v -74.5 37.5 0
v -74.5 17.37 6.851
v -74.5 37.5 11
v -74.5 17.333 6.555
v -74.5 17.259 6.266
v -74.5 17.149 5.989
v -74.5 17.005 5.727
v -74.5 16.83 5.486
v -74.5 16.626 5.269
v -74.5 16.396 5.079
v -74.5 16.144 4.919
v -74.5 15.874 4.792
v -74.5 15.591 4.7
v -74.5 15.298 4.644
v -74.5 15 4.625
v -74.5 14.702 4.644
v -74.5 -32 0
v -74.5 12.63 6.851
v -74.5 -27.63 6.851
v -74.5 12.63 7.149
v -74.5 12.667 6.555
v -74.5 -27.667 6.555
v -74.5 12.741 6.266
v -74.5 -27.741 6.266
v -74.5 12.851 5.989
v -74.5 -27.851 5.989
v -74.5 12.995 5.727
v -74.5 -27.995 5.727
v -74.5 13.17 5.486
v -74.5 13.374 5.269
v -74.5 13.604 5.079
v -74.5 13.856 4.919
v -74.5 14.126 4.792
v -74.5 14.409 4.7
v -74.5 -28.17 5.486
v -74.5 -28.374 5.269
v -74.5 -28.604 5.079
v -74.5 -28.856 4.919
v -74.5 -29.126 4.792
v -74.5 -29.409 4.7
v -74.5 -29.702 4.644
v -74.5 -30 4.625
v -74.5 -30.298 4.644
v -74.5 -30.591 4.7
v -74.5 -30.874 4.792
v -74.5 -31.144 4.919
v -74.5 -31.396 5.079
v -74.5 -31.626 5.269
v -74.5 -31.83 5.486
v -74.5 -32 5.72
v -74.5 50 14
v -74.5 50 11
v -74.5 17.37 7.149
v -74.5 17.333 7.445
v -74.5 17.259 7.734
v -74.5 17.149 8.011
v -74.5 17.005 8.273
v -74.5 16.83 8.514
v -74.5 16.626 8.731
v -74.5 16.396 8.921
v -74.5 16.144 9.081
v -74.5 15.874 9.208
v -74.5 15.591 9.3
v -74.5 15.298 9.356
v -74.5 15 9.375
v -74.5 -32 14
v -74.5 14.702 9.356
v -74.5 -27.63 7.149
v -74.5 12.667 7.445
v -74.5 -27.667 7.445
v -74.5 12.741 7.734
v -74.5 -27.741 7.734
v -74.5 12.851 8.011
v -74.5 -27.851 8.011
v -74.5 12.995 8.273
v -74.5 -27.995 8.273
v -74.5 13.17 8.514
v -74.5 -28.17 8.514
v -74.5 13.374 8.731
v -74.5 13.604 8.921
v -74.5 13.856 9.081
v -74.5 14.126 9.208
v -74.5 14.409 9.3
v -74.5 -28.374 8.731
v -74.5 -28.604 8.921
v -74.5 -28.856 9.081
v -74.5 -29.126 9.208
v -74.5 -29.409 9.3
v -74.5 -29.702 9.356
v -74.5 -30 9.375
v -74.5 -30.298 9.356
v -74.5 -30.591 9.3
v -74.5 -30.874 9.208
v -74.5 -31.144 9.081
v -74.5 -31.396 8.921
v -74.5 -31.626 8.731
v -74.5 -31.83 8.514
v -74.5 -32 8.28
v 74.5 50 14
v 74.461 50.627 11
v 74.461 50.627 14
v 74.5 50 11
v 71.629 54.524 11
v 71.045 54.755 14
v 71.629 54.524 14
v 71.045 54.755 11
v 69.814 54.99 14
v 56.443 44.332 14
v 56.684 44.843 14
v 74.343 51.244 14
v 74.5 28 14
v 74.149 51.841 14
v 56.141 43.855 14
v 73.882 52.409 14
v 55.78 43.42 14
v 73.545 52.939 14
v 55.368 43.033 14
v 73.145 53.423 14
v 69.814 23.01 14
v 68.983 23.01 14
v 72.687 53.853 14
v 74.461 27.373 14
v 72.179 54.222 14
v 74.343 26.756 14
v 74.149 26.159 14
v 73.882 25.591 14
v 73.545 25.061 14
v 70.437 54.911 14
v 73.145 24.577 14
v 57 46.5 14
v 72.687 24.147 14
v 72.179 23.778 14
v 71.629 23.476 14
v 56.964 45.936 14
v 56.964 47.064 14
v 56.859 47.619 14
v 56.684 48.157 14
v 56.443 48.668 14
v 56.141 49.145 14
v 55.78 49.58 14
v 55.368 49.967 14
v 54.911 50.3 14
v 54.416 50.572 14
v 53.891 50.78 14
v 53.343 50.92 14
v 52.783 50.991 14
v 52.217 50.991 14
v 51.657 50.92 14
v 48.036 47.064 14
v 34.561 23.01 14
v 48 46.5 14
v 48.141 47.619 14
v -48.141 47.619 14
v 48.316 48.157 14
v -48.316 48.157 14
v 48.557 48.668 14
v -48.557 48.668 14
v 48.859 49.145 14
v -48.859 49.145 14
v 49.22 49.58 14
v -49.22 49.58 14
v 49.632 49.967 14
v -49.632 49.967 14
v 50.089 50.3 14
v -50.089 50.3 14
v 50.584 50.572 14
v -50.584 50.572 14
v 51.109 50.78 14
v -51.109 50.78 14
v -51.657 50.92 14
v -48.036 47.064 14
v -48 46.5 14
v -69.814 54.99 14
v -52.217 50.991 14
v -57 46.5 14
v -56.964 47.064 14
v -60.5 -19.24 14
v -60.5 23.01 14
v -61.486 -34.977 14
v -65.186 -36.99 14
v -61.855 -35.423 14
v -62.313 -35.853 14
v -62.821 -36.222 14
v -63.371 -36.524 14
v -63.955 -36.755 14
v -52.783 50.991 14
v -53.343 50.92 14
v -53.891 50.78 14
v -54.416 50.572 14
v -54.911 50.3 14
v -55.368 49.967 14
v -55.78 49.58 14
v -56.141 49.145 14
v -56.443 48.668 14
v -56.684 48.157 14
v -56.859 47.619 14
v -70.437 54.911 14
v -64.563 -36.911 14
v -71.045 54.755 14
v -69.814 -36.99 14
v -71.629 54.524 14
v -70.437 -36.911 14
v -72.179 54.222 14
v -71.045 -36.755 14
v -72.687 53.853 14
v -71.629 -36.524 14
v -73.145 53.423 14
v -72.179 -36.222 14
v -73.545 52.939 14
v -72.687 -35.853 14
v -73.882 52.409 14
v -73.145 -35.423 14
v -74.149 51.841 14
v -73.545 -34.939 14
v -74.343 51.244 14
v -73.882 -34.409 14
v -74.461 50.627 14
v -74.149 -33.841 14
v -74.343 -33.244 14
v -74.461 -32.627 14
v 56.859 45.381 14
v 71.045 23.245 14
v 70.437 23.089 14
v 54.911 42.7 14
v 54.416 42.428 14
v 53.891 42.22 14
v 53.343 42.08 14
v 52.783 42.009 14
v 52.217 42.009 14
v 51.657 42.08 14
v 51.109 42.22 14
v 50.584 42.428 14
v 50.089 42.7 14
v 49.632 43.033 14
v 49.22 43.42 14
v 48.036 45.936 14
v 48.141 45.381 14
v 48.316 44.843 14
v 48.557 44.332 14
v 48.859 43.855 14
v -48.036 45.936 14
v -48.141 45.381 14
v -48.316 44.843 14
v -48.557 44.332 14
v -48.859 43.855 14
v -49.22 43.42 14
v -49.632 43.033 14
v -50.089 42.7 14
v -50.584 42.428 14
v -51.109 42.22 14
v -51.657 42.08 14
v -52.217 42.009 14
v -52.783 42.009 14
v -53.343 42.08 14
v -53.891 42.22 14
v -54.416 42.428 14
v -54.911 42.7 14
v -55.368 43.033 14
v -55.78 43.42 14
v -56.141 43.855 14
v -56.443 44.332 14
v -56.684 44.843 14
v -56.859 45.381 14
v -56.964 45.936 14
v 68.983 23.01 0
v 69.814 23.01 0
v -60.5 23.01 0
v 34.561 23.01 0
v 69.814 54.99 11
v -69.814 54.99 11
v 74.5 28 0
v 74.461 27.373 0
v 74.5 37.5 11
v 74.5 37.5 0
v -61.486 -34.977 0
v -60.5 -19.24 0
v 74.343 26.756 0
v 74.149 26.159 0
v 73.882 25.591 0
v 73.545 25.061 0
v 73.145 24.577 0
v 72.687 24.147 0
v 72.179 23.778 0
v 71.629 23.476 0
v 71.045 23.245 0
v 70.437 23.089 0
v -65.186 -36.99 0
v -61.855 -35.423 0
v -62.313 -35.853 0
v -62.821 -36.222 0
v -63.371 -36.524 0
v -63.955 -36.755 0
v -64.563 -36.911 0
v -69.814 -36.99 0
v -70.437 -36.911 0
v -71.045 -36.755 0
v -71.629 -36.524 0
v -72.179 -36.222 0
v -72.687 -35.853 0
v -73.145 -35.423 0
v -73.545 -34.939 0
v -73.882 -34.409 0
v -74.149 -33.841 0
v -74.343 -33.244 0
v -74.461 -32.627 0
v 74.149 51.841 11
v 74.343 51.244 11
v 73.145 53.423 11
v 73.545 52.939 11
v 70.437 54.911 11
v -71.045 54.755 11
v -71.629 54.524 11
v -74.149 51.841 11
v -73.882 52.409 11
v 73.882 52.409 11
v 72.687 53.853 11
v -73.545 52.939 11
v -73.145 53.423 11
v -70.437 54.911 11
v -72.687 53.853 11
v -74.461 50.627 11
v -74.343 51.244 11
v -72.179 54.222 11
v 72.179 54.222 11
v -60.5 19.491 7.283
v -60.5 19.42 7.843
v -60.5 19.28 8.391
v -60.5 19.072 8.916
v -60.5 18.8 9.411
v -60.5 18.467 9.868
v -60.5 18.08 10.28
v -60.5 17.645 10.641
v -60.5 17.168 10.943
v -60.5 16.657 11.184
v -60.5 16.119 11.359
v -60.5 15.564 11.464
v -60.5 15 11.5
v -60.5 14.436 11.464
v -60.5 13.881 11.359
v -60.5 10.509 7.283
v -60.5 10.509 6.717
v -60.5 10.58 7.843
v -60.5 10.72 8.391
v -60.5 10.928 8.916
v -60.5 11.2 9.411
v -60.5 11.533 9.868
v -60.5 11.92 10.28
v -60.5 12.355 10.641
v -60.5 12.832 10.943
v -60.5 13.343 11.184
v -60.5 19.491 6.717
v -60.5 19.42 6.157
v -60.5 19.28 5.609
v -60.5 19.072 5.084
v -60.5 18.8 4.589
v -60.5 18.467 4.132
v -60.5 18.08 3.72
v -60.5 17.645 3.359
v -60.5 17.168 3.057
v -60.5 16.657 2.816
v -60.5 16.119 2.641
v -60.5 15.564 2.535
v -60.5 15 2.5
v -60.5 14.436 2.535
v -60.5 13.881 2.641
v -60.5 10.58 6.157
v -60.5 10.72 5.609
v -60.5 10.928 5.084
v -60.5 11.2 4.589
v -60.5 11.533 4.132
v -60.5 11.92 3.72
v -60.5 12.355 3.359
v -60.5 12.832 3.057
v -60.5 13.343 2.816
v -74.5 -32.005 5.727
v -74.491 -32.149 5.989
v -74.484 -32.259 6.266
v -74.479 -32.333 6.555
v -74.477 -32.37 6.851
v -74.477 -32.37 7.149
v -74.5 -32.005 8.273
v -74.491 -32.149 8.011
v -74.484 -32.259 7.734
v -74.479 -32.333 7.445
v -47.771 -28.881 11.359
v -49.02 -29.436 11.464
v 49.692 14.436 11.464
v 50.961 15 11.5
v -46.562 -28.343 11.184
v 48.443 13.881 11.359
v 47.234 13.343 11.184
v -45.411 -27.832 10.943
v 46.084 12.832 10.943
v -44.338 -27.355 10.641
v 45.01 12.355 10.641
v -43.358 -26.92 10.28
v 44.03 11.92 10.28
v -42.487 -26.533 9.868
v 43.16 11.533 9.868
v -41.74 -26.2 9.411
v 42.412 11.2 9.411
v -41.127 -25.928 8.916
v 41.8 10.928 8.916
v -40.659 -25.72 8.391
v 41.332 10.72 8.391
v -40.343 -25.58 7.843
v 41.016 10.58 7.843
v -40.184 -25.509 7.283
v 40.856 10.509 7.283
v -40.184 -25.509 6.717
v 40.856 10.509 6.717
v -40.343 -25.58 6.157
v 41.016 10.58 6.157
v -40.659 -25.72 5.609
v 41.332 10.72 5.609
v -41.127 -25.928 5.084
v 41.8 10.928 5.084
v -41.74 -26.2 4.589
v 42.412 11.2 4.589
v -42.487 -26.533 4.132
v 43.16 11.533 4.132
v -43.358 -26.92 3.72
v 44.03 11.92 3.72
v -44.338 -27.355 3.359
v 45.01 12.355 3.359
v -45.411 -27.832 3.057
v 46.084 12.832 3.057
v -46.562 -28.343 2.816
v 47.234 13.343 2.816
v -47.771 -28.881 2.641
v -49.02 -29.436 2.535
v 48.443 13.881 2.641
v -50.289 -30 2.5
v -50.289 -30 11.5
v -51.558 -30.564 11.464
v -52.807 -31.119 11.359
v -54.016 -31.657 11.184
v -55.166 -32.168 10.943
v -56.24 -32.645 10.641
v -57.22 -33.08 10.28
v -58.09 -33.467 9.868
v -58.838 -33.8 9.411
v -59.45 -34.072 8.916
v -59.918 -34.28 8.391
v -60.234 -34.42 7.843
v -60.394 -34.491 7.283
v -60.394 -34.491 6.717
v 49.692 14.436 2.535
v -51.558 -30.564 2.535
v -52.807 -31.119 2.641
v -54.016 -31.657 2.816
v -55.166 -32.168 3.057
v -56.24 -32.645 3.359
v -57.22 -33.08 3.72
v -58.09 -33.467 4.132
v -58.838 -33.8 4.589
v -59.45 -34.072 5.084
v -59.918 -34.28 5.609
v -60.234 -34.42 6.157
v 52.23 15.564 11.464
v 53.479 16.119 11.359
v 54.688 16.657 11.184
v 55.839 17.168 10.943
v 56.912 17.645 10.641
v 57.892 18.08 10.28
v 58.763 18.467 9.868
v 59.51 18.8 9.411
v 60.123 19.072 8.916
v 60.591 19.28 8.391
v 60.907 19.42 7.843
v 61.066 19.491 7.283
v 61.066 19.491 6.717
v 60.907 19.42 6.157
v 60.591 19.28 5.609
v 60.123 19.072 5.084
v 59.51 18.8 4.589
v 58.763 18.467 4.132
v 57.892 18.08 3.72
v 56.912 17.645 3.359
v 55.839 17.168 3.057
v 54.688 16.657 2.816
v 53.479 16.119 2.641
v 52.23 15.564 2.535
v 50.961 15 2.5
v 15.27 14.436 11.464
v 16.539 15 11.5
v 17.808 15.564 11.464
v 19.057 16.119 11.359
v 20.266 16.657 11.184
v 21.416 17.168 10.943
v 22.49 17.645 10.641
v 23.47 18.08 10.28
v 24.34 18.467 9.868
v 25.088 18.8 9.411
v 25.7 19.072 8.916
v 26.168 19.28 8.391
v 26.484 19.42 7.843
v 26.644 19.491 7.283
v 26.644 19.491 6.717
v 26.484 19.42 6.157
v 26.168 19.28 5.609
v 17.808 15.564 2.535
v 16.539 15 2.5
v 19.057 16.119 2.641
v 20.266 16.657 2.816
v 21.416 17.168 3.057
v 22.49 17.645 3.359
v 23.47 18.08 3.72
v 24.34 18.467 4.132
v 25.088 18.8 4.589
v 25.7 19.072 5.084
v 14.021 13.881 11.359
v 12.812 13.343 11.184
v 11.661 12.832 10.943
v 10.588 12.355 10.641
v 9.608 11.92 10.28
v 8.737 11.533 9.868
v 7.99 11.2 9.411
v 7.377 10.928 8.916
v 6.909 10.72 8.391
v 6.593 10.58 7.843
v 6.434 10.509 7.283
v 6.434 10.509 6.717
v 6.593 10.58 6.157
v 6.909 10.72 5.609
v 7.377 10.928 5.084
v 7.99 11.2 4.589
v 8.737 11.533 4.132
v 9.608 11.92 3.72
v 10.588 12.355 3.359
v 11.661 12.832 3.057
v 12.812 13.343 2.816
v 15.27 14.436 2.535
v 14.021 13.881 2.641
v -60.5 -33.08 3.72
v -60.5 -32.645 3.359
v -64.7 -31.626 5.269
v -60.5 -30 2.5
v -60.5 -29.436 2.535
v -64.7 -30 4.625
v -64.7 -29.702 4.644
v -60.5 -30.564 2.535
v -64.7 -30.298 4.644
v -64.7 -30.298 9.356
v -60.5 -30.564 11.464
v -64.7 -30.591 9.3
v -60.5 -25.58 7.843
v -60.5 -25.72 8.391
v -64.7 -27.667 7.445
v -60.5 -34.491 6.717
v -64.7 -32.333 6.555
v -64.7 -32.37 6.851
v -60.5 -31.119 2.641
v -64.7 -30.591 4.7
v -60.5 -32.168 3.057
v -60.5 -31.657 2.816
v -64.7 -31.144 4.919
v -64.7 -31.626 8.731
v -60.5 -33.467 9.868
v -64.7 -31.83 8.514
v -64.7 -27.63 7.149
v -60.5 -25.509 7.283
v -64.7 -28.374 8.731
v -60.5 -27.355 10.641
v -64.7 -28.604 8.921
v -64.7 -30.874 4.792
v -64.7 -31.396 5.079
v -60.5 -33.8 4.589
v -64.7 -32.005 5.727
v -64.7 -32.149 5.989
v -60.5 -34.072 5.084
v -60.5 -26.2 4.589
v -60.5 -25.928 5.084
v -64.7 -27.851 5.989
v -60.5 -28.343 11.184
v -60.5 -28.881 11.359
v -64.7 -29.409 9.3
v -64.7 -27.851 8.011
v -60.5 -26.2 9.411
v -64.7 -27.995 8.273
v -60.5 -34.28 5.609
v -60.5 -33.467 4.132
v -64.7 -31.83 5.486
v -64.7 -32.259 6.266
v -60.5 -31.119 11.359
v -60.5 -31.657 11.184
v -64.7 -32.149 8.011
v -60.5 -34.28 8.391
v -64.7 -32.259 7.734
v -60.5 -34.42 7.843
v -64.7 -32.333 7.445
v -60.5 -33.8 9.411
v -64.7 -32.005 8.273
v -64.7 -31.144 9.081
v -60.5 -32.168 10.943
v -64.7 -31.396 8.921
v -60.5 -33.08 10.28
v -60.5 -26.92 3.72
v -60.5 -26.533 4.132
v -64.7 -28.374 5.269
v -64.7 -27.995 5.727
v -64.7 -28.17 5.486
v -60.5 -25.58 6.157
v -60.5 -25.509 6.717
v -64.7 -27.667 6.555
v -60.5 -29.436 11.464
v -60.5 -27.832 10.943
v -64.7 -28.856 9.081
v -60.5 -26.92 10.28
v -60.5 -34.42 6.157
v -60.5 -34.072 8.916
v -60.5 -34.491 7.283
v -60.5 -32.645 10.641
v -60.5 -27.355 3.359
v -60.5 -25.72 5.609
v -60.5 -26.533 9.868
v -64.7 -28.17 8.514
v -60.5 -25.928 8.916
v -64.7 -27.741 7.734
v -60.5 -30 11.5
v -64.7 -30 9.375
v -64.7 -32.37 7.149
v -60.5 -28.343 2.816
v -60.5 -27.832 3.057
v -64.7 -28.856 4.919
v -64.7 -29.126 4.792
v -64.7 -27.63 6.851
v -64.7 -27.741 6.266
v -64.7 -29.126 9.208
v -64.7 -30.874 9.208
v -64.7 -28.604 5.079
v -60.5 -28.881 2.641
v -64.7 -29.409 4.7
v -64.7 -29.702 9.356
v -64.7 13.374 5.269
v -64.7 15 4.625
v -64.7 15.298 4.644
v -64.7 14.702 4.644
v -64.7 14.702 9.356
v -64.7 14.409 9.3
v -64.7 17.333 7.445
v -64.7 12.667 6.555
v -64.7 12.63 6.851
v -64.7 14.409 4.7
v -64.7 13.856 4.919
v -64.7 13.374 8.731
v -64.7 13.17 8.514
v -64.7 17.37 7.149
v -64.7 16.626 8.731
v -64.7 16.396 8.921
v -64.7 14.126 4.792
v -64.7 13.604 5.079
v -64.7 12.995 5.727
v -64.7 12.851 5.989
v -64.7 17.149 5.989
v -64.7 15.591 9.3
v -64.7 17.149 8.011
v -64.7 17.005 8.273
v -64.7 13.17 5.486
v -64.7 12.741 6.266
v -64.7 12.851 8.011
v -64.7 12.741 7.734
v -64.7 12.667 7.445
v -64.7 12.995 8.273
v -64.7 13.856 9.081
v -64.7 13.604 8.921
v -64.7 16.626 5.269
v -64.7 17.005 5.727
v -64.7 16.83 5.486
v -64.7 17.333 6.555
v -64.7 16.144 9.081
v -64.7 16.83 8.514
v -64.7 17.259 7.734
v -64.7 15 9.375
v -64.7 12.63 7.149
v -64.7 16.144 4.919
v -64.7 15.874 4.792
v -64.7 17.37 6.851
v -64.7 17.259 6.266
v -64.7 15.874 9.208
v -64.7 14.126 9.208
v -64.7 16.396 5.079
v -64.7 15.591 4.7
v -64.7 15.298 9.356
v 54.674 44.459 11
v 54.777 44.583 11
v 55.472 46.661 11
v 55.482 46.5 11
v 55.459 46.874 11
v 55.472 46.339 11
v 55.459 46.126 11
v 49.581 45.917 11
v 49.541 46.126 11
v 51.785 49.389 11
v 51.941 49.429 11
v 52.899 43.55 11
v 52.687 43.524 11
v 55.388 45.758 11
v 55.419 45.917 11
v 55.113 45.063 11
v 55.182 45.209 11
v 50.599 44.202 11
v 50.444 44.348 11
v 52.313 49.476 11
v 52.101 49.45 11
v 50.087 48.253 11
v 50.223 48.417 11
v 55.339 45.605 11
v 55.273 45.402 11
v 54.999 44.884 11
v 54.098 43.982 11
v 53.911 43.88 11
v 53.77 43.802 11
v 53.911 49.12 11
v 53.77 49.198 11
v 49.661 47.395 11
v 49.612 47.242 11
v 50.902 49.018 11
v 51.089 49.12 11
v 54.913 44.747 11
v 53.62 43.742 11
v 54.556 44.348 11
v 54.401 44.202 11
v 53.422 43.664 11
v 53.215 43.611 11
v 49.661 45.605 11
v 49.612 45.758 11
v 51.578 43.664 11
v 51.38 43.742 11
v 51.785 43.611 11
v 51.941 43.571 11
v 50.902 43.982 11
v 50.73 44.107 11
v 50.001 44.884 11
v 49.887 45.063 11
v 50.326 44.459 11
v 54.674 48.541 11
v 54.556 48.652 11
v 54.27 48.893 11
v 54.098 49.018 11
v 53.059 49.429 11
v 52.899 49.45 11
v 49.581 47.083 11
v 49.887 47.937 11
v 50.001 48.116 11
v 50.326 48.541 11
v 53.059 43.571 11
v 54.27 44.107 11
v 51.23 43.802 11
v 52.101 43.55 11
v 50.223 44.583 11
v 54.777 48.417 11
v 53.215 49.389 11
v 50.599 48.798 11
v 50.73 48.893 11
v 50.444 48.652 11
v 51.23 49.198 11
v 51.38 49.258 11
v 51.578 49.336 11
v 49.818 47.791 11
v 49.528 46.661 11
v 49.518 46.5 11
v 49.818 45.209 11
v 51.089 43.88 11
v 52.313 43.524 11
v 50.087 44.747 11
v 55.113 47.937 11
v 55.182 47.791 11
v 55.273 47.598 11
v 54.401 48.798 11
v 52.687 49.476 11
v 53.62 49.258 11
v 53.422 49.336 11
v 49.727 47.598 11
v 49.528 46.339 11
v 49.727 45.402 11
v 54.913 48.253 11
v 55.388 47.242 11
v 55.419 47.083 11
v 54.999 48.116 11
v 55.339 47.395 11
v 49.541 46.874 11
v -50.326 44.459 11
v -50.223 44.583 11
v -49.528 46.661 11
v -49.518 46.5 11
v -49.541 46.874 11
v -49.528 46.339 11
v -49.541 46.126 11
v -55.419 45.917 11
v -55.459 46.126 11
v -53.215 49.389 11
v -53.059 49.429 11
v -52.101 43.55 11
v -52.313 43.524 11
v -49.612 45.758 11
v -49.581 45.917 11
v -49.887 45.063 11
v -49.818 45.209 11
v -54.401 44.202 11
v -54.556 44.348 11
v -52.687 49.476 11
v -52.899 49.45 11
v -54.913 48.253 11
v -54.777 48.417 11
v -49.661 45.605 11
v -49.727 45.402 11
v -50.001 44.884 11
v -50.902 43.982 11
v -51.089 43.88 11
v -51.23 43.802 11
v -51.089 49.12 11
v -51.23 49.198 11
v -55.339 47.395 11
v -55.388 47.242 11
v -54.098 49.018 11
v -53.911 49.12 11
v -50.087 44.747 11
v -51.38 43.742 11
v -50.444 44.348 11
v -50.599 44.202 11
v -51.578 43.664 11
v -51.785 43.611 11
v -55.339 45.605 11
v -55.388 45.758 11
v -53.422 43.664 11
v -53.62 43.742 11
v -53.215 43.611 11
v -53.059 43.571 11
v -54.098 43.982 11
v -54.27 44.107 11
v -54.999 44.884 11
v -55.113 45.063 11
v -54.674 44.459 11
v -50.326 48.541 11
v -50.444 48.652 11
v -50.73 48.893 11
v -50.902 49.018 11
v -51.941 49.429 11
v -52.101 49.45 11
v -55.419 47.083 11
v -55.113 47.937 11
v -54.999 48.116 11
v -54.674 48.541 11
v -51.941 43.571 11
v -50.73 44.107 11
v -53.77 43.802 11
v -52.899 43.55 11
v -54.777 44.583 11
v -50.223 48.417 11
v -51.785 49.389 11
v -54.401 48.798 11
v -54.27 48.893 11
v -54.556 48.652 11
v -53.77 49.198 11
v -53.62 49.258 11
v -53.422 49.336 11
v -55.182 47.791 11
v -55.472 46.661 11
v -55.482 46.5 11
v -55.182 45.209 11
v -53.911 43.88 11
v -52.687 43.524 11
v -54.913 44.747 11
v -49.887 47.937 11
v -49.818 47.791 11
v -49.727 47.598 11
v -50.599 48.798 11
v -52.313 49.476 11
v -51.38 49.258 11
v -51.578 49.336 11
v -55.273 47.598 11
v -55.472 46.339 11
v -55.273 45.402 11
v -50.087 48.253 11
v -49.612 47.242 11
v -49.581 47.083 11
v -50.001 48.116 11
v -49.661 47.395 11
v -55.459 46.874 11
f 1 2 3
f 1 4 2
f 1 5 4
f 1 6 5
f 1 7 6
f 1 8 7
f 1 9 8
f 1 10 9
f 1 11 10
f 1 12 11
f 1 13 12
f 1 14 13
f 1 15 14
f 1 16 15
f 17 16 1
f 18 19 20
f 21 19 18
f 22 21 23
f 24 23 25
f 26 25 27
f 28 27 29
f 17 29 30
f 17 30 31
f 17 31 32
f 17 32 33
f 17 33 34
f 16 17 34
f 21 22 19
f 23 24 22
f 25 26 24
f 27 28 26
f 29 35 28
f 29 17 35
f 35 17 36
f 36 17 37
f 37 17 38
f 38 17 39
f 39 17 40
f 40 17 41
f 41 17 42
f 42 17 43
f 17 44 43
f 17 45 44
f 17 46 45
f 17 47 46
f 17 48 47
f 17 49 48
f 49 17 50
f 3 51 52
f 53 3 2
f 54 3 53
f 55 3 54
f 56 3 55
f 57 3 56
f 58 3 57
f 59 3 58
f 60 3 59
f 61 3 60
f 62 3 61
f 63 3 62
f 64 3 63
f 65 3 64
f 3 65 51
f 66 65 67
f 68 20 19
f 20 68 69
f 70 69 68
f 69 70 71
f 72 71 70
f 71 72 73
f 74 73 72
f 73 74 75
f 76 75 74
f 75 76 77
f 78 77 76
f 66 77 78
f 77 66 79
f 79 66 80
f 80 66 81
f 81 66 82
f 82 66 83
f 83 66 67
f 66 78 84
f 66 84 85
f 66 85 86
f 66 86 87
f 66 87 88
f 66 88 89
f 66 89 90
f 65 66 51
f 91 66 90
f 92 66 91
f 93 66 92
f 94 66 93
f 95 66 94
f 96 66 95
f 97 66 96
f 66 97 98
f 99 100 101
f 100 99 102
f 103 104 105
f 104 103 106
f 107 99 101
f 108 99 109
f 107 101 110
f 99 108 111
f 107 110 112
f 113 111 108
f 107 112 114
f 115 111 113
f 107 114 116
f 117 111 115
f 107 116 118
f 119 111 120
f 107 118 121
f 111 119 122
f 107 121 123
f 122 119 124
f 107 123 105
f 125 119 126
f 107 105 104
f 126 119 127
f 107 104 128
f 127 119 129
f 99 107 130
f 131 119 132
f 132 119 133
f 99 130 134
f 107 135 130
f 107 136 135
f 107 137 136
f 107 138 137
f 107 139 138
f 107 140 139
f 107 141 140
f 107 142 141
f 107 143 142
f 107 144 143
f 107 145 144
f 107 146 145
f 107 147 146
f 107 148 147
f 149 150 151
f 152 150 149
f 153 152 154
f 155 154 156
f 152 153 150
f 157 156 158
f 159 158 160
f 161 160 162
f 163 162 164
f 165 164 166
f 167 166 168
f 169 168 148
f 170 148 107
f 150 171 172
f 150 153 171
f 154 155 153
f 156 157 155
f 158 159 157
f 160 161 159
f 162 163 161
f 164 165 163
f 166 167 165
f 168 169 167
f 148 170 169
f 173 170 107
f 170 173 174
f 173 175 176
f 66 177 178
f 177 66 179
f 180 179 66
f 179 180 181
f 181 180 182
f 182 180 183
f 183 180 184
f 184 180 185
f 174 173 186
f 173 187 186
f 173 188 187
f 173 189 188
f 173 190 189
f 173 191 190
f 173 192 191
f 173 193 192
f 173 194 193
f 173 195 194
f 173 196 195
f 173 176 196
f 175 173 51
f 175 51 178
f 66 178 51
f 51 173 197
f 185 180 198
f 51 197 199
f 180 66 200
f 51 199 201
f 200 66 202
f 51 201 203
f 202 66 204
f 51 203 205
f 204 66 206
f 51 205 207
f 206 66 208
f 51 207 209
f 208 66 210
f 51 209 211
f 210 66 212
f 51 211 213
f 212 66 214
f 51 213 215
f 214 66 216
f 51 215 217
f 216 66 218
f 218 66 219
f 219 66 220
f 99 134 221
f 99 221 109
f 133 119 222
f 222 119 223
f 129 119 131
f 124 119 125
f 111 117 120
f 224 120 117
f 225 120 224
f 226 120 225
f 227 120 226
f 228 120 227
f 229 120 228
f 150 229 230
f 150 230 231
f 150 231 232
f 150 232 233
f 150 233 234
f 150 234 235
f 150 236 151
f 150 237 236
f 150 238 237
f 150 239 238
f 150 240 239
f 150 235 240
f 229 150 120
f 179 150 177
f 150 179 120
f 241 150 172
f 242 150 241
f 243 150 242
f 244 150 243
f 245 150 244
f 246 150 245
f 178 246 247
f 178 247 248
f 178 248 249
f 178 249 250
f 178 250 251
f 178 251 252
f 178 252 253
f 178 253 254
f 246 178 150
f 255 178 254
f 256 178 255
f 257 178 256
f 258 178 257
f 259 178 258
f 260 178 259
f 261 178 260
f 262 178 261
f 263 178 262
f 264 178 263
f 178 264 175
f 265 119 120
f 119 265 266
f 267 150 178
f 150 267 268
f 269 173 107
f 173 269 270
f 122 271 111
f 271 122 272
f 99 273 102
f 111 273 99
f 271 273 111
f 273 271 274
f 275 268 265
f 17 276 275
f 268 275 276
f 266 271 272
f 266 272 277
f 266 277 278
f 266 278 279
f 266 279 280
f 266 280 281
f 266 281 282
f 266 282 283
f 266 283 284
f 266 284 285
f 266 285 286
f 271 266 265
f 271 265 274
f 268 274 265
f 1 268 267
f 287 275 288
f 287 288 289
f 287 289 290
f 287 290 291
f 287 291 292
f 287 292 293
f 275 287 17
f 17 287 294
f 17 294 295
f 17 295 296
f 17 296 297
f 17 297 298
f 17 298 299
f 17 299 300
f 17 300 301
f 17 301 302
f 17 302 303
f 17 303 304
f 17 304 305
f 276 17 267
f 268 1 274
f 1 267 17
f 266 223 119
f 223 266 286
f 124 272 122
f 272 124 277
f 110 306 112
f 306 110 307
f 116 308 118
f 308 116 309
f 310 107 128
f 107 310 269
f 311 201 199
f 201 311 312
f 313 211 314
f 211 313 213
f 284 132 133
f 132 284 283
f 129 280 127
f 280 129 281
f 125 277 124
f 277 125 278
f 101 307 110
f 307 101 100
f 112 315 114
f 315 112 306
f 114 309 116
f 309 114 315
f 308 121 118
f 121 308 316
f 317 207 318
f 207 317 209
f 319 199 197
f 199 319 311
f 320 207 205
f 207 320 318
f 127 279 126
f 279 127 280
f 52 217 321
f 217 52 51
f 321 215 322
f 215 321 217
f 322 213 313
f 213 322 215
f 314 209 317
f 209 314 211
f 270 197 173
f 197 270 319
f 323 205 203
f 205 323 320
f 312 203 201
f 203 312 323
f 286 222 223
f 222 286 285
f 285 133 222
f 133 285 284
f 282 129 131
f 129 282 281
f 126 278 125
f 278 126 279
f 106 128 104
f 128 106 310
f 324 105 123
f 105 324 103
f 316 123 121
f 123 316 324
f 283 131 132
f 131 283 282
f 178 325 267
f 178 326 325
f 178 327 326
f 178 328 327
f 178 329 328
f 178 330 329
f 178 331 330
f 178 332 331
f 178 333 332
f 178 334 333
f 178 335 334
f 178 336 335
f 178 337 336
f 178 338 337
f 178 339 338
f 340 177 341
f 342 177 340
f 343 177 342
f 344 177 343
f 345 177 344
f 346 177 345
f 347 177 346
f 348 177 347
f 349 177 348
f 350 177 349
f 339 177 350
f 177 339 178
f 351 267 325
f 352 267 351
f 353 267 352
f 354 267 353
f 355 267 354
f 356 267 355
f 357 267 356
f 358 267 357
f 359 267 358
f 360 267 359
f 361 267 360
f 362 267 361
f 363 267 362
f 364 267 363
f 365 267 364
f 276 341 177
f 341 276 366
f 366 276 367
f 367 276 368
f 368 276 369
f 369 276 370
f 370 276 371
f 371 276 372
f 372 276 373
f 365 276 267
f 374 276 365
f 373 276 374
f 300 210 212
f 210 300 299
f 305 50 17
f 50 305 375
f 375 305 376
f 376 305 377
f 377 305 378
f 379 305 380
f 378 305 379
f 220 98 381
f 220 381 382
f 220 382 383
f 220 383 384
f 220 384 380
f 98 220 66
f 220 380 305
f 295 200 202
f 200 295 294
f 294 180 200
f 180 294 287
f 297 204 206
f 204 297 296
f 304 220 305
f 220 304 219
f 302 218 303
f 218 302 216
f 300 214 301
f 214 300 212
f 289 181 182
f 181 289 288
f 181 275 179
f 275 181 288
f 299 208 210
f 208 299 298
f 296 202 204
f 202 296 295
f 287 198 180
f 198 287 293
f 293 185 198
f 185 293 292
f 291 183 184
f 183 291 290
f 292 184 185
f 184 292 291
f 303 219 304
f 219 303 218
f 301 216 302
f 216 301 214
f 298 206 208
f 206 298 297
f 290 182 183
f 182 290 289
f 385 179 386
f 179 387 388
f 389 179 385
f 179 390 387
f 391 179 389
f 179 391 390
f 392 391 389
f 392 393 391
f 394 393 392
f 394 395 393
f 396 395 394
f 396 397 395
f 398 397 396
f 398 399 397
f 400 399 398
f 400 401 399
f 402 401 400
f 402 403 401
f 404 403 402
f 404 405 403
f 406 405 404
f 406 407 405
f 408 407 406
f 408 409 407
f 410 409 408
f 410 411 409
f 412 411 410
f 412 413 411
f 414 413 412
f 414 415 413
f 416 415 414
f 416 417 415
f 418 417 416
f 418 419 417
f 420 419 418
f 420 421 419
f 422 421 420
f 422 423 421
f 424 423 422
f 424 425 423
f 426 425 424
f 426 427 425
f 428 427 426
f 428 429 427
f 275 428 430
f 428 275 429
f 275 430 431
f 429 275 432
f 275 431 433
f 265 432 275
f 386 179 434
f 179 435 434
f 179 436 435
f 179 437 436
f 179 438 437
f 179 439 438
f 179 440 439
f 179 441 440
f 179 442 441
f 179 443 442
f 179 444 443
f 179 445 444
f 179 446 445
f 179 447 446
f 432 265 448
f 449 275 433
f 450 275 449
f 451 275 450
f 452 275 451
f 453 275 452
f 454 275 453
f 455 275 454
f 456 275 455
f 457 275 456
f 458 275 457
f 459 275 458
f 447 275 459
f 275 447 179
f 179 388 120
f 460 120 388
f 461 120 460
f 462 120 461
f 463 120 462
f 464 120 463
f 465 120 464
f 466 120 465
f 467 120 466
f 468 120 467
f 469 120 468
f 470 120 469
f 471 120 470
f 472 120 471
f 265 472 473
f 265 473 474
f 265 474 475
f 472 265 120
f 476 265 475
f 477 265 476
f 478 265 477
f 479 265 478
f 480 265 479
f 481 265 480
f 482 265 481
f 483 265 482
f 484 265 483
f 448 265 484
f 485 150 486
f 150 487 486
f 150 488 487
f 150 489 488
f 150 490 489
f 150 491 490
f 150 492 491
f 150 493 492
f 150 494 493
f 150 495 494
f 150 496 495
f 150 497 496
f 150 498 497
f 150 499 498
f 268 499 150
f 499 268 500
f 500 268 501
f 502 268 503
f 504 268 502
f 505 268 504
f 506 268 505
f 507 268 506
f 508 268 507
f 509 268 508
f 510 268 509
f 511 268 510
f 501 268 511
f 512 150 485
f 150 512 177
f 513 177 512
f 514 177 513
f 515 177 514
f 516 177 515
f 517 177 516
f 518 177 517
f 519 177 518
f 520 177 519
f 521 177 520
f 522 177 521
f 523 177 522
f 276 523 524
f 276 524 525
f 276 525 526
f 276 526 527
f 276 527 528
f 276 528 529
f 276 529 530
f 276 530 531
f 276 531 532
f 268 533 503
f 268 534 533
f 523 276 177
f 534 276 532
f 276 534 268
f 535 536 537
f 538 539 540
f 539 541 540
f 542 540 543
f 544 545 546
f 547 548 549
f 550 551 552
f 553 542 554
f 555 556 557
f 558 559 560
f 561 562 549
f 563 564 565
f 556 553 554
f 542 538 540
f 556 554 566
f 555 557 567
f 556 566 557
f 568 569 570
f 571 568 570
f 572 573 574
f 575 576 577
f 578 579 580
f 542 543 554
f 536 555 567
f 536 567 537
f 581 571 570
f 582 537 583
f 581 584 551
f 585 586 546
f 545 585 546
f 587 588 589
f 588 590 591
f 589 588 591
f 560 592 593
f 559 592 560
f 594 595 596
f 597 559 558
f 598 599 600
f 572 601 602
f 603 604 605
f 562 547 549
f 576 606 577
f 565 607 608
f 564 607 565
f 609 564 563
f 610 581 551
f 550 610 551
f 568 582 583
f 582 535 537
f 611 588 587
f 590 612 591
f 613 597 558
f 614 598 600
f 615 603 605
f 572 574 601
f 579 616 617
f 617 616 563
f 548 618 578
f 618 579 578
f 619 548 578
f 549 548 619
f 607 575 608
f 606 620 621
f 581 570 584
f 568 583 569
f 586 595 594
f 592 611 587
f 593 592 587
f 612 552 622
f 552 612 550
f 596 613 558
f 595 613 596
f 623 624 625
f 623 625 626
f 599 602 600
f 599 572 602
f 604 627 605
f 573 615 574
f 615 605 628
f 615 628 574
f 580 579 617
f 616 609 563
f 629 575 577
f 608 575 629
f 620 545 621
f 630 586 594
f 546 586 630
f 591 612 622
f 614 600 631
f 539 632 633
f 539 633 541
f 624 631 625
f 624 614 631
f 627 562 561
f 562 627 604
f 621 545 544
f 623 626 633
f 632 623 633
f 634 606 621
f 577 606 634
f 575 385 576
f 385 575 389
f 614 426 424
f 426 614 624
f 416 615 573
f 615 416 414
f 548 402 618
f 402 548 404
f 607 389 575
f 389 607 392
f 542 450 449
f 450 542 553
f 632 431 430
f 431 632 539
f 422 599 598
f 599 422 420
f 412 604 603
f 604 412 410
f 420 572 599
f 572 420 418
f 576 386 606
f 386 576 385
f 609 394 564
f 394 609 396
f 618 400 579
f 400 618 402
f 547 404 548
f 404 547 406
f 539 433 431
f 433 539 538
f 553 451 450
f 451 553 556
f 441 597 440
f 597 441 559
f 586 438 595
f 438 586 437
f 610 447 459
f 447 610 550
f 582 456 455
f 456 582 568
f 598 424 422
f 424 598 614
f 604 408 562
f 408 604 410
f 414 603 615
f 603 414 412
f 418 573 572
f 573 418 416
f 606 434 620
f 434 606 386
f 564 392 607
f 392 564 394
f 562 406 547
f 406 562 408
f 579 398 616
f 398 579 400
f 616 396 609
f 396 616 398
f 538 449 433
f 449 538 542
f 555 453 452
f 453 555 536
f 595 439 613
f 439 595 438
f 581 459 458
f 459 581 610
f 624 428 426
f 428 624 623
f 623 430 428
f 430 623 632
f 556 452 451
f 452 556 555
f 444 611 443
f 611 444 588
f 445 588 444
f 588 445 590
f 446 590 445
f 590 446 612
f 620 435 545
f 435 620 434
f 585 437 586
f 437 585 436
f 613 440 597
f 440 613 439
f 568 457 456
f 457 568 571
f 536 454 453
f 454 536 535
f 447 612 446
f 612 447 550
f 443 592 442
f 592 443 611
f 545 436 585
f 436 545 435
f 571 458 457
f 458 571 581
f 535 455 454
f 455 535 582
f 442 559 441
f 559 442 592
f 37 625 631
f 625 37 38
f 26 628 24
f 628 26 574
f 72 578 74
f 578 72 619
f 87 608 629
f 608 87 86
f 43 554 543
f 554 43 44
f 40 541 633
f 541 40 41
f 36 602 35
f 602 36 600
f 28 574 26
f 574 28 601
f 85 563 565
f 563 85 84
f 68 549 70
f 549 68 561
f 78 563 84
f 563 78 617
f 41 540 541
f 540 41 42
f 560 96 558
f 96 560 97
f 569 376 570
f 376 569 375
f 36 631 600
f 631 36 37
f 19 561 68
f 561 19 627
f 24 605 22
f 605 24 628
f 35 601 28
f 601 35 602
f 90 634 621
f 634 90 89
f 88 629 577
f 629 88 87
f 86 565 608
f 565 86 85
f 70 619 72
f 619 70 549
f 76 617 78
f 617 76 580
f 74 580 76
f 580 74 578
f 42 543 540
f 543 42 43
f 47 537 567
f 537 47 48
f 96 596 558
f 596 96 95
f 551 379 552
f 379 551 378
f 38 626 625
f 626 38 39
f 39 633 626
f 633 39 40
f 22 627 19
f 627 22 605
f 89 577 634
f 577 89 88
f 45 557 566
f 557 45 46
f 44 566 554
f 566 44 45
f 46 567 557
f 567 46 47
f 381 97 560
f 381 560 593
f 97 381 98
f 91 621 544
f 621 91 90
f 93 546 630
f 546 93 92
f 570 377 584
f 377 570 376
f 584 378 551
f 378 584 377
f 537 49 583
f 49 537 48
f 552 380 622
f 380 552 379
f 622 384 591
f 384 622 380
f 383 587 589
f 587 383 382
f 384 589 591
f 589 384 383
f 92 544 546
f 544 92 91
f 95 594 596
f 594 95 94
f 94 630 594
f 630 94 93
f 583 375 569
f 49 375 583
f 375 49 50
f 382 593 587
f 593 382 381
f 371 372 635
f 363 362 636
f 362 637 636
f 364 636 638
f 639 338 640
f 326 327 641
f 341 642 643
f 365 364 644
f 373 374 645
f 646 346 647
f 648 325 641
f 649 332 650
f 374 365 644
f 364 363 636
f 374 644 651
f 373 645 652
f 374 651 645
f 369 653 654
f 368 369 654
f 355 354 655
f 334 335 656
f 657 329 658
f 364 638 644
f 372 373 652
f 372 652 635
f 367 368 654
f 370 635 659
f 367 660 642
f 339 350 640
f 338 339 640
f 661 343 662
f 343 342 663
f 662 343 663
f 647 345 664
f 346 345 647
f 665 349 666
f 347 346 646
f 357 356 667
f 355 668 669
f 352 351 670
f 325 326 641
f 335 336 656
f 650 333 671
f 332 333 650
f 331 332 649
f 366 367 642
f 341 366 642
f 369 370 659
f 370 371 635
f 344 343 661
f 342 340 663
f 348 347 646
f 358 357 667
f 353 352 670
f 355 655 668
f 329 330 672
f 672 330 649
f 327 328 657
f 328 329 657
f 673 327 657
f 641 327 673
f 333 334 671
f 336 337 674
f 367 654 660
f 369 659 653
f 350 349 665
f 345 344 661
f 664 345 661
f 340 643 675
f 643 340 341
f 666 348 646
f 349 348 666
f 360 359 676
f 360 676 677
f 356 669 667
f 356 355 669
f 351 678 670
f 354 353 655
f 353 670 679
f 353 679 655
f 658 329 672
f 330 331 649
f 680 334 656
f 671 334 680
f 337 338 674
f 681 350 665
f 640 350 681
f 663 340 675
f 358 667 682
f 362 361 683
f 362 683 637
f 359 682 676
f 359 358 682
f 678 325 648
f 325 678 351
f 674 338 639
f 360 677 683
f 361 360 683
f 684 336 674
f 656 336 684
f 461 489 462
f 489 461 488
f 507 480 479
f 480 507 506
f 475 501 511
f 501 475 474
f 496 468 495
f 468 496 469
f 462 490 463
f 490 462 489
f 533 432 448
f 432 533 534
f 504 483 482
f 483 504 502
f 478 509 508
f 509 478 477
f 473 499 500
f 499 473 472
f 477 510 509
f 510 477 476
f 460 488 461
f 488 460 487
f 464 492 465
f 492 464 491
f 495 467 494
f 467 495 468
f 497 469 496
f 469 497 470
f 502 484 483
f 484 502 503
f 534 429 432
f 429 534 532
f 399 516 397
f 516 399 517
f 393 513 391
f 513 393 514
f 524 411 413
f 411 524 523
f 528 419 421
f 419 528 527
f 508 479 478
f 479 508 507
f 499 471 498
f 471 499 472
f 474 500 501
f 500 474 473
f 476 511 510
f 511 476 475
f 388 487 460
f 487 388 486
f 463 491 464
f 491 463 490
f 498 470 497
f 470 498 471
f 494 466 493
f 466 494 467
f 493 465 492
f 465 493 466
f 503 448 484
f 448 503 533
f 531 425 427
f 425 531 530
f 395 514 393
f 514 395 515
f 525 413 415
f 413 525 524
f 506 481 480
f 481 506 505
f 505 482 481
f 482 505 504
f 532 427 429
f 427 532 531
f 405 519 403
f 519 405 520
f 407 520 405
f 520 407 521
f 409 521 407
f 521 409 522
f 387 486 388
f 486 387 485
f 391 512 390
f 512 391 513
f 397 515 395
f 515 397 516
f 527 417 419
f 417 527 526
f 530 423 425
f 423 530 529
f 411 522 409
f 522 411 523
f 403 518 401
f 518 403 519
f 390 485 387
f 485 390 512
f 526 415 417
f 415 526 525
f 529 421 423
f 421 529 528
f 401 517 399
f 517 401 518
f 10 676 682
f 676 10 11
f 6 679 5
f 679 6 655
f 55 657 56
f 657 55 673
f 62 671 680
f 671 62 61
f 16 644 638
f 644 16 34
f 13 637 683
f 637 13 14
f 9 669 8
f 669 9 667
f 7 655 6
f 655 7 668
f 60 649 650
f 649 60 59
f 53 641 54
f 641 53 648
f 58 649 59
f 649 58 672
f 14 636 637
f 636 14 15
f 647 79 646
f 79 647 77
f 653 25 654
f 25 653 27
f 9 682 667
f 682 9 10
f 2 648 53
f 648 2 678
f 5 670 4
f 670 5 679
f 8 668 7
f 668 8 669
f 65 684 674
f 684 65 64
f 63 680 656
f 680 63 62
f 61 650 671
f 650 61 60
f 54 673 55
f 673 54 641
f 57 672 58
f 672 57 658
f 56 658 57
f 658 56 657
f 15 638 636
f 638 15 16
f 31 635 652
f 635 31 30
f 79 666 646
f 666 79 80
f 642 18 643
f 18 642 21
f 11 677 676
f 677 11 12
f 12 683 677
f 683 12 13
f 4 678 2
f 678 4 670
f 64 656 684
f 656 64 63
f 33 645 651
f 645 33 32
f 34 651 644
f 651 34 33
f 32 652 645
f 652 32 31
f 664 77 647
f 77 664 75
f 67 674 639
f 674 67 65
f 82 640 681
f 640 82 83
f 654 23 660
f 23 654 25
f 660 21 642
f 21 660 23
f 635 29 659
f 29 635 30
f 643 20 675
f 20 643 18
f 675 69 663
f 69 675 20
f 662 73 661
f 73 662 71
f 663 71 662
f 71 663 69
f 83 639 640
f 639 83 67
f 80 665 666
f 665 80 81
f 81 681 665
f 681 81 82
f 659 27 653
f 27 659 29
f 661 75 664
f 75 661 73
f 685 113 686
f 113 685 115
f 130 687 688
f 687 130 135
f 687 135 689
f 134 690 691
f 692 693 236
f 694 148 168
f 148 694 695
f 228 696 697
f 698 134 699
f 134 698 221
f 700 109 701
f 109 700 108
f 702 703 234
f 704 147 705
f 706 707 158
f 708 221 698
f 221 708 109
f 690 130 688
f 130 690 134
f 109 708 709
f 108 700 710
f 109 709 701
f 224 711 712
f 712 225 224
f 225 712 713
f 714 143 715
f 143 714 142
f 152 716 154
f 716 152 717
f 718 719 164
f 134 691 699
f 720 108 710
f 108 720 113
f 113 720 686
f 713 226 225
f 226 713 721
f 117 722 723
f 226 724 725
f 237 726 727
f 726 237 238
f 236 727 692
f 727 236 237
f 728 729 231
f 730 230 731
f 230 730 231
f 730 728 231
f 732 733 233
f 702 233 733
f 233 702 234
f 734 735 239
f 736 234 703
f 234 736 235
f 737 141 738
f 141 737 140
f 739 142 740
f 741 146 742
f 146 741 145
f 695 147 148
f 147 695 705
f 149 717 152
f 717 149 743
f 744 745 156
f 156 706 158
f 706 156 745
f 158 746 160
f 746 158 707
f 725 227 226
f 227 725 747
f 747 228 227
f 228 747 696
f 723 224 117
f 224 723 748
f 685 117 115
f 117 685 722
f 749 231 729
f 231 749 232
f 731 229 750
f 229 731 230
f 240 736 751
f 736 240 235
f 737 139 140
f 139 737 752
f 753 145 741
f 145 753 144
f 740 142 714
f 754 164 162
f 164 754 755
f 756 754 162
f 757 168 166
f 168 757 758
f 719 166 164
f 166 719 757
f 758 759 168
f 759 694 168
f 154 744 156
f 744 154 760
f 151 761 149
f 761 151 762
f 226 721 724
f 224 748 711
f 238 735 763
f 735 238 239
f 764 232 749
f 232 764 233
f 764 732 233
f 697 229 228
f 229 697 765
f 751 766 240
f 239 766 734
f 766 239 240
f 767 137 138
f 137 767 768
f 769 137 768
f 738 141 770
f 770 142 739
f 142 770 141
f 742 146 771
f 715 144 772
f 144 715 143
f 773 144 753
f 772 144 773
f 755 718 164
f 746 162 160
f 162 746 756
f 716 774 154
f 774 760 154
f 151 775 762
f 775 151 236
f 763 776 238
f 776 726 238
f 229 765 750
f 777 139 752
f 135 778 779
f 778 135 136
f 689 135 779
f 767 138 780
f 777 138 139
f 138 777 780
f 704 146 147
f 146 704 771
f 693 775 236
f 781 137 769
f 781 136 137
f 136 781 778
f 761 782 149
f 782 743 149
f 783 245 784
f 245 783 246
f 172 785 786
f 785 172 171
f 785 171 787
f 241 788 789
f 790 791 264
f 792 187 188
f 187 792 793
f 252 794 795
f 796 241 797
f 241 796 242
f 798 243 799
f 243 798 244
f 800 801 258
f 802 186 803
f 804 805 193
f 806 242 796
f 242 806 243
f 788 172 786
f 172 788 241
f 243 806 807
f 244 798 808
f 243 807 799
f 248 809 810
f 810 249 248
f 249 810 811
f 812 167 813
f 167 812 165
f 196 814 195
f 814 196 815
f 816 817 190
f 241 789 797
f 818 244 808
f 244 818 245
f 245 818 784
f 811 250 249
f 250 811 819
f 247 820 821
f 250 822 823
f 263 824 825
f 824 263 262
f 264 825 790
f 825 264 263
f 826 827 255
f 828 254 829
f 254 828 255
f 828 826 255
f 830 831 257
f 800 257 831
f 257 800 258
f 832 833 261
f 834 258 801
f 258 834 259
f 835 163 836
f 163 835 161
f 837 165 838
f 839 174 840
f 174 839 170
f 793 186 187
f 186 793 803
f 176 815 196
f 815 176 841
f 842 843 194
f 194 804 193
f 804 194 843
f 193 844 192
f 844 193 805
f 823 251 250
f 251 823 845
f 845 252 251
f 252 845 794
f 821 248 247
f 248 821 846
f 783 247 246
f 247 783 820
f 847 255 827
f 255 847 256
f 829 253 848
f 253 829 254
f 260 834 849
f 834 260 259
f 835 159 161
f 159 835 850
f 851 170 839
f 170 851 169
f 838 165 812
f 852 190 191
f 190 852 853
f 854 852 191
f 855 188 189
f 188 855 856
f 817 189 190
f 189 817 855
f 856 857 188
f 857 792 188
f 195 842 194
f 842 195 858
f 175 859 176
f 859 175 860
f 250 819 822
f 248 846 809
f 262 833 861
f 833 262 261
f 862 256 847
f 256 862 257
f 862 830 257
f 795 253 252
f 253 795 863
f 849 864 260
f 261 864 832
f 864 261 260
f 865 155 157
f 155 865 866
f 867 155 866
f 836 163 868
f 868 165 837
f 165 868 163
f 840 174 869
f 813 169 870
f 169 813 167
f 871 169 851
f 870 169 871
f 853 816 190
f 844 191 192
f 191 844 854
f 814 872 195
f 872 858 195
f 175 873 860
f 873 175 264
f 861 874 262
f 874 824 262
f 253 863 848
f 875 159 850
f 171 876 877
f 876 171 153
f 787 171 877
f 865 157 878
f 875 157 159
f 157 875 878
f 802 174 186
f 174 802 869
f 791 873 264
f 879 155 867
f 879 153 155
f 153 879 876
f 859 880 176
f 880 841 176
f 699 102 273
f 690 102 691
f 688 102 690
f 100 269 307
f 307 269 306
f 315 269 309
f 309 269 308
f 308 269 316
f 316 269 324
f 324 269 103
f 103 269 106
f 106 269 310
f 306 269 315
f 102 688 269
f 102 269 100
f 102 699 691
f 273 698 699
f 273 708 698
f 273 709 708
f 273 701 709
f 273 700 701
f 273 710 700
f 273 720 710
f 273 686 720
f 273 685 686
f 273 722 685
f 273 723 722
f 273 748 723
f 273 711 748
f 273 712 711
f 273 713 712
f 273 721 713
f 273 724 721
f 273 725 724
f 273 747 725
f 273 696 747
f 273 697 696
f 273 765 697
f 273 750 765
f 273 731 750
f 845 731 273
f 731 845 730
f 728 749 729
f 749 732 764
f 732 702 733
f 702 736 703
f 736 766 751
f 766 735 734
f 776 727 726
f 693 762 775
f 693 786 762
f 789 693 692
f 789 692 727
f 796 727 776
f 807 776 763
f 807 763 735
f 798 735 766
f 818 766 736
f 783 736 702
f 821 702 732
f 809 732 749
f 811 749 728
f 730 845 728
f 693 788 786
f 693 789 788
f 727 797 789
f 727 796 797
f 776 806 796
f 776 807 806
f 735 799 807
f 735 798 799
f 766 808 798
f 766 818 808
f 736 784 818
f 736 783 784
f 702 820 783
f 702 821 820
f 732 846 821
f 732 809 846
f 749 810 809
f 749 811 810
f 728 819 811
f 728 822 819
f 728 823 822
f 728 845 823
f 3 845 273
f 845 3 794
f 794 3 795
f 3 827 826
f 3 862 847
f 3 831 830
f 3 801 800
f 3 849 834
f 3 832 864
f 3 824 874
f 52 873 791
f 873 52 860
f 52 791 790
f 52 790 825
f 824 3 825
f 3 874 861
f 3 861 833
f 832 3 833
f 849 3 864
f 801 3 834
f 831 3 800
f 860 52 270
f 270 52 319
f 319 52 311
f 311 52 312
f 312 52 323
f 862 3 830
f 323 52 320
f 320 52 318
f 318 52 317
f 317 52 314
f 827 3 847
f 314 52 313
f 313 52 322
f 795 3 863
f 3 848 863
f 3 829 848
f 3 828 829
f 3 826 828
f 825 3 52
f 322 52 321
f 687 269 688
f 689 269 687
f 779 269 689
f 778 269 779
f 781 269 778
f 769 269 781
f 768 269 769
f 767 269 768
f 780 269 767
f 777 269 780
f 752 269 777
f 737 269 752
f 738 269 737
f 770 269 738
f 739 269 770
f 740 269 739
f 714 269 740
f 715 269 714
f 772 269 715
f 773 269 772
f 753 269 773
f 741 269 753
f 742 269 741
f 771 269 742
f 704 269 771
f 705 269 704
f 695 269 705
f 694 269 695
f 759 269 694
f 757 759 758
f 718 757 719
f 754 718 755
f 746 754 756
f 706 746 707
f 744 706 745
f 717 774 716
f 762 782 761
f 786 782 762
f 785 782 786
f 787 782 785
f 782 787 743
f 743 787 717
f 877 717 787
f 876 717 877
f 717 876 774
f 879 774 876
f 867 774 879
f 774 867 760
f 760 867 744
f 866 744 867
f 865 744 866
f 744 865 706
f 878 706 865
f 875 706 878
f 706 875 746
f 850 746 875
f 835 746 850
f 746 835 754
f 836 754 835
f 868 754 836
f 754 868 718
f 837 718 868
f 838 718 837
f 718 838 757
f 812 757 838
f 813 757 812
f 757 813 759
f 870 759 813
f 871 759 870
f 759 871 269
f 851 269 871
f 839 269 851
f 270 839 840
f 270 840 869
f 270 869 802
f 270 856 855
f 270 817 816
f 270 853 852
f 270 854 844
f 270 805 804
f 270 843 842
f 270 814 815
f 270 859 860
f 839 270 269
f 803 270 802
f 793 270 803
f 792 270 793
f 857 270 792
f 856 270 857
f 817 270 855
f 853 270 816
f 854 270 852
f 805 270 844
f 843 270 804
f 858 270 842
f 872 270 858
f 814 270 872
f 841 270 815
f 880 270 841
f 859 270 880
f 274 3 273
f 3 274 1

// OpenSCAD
$fn = 50;


difference() {
	union() {
		translate(v = [0, 39.0000000000, 0]) {
			hull() {
				translate(v = [-69.5000000000, 11.0000000000, 0]) {
					cylinder(h = 14, r = 5);
				}
				translate(v = [69.5000000000, 11.0000000000, 0]) {
					cylinder(h = 14, r = 5);
				}
				translate(v = [-69.5000000000, -11.0000000000, 0]) {
					cylinder(h = 14, r = 5);
				}
				translate(v = [69.5000000000, -11.0000000000, 0]) {
					cylinder(h = 14, r = 5);
				}
			}
		}
		translate(v = [-67.5000000000, 0, 0]) {
			hull() {
				translate(v = [-2.0000000000, 32.0000000000, 0]) {
					cylinder(h = 14, r = 5);
				}
				translate(v = [2.0000000000, 32.0000000000, 0]) {
					cylinder(h = 14, r = 5);
				}
				translate(v = [-2.0000000000, -32.0000000000, 0]) {
					cylinder(h = 14, r = 5);
				}
				translate(v = [2.0000000000, -32.0000000000, 0]) {
					cylinder(h = 14, r = 5);
				}
			}
		}
		rotate(a = [0, 0, 23.9624889746]) {
			hull() {
				translate(v = [-73.3664335135, 2.0000000000, 0]) {
					cylinder(h = 14, r = 5);
				}
				translate(v = [73.3664335135, 2.0000000000, 0]) {
					cylinder(h = 14, r = 5);
				}
				translate(v = [-73.3664335135, -2.0000000000, 0]) {
					cylinder(h = 14, r = 5);
				}
				translate(v = [73.3664335135, -2.0000000000, 0]) {
					cylinder(h = 14, r = 5);
				}
			}
		}
	}
	union() {
		translate(v = [-60.5000000000, -30.0000000000, 7.0000000000]) {
			rotate(a = [0, 90, 0]) {
				difference() {
					union() {
						#translate(v = [0, 0, -14.0000000000]) {
							cylinder(h = 14, r = 2.2500000000);
						}
						#translate(v = [0, 0, -4.2000000000]) {
							cylinder(h = 4.2000000000, r1 = 2.3750000000, r2 = 4.5000000000);
						}
						#cylinder(h = 250, r = 4.5000000000);
						#translate(v = [0, 0, -14.0000000000]) {
							cylinder(h = 14, r = 2.3750000000);
						}
						#translate(v = [0, 0, -14.0000000000]) {
							cylinder(h = 14, r = 2.2500000000);
						}
					}
					union();
				}
			}
		}
		translate(v = [-60.5000000000, 15.0000000000, 7.0000000000]) {
			rotate(a = [0, 90, 0]) {
				difference() {
					union() {
						#translate(v = [0, 0, -14.0000000000]) {
							cylinder(h = 14, r = 2.2500000000);
						}
						#translate(v = [0, 0, -4.2000000000]) {
							cylinder(h = 4.2000000000, r1 = 2.3750000000, r2 = 4.5000000000);
						}
						#cylinder(h = 250, r = 4.5000000000);
						#translate(v = [0, 0, -14.0000000000]) {
							cylinder(h = 14, r = 2.3750000000);
						}
						#translate(v = [0, 0, -14.0000000000]) {
							cylinder(h = 14, r = 2.2500000000);
						}
					}
					union();
				}
			}
		}
		translate(v = [52.5000000000, 46.5000000000, 14.0000000000]) {
			rotate(a = [0, 0, 0]) {
				difference() {
					union() {
						#translate(v = [0, 0, -14.0000000000]) {
							cylinder(h = 14, r = 2.2500000000);
						}
						#translate(v = [0, 0, -4.2000000000]) {
							cylinder(h = 4.2000000000, r1 = 2.3750000000, r2 = 4.5000000000);
						}
						#cylinder(h = 250, r = 4.5000000000);
						#translate(v = [0, 0, -14.0000000000]) {
							cylinder(h = 14, r = 2.3750000000);
						}
						#translate(v = [0, 0, -14.0000000000]) {
							cylinder(h = 14, r = 2.2500000000);
						}
					}
					union();
				}
			}
		}
		translate(v = [-52.5000000000, 46.5000000000, 14.0000000000]) {
			rotate(a = [0, 0, 0]) {
				difference() {
					union() {
						#translate(v = [0, 0, -14.0000000000]) {
							cylinder(h = 14, r = 2.2500000000);
						}
						#translate(v = [0, 0, -4.2000000000]) {
							cylinder(h = 4.2000000000, r1 = 2.3750000000, r2 = 4.5000000000);
						}
						#cylinder(h = 250, r = 4.5000000000);
						#translate(v = [0, 0, -14.0000000000]) {
							cylinder(h = 14, r = 2.3750000000);
						}
						#translate(v = [0, 0, -14.0000000000]) {
							cylinder(h = 14, r = 2.2500000000);
						}
					}
					union();
				}
			}
		}
		translate(v = [-74.5000000000, 37.5000000000, 0]) {
			cube(size = [149, 18, 11]);
		}
	}
}
